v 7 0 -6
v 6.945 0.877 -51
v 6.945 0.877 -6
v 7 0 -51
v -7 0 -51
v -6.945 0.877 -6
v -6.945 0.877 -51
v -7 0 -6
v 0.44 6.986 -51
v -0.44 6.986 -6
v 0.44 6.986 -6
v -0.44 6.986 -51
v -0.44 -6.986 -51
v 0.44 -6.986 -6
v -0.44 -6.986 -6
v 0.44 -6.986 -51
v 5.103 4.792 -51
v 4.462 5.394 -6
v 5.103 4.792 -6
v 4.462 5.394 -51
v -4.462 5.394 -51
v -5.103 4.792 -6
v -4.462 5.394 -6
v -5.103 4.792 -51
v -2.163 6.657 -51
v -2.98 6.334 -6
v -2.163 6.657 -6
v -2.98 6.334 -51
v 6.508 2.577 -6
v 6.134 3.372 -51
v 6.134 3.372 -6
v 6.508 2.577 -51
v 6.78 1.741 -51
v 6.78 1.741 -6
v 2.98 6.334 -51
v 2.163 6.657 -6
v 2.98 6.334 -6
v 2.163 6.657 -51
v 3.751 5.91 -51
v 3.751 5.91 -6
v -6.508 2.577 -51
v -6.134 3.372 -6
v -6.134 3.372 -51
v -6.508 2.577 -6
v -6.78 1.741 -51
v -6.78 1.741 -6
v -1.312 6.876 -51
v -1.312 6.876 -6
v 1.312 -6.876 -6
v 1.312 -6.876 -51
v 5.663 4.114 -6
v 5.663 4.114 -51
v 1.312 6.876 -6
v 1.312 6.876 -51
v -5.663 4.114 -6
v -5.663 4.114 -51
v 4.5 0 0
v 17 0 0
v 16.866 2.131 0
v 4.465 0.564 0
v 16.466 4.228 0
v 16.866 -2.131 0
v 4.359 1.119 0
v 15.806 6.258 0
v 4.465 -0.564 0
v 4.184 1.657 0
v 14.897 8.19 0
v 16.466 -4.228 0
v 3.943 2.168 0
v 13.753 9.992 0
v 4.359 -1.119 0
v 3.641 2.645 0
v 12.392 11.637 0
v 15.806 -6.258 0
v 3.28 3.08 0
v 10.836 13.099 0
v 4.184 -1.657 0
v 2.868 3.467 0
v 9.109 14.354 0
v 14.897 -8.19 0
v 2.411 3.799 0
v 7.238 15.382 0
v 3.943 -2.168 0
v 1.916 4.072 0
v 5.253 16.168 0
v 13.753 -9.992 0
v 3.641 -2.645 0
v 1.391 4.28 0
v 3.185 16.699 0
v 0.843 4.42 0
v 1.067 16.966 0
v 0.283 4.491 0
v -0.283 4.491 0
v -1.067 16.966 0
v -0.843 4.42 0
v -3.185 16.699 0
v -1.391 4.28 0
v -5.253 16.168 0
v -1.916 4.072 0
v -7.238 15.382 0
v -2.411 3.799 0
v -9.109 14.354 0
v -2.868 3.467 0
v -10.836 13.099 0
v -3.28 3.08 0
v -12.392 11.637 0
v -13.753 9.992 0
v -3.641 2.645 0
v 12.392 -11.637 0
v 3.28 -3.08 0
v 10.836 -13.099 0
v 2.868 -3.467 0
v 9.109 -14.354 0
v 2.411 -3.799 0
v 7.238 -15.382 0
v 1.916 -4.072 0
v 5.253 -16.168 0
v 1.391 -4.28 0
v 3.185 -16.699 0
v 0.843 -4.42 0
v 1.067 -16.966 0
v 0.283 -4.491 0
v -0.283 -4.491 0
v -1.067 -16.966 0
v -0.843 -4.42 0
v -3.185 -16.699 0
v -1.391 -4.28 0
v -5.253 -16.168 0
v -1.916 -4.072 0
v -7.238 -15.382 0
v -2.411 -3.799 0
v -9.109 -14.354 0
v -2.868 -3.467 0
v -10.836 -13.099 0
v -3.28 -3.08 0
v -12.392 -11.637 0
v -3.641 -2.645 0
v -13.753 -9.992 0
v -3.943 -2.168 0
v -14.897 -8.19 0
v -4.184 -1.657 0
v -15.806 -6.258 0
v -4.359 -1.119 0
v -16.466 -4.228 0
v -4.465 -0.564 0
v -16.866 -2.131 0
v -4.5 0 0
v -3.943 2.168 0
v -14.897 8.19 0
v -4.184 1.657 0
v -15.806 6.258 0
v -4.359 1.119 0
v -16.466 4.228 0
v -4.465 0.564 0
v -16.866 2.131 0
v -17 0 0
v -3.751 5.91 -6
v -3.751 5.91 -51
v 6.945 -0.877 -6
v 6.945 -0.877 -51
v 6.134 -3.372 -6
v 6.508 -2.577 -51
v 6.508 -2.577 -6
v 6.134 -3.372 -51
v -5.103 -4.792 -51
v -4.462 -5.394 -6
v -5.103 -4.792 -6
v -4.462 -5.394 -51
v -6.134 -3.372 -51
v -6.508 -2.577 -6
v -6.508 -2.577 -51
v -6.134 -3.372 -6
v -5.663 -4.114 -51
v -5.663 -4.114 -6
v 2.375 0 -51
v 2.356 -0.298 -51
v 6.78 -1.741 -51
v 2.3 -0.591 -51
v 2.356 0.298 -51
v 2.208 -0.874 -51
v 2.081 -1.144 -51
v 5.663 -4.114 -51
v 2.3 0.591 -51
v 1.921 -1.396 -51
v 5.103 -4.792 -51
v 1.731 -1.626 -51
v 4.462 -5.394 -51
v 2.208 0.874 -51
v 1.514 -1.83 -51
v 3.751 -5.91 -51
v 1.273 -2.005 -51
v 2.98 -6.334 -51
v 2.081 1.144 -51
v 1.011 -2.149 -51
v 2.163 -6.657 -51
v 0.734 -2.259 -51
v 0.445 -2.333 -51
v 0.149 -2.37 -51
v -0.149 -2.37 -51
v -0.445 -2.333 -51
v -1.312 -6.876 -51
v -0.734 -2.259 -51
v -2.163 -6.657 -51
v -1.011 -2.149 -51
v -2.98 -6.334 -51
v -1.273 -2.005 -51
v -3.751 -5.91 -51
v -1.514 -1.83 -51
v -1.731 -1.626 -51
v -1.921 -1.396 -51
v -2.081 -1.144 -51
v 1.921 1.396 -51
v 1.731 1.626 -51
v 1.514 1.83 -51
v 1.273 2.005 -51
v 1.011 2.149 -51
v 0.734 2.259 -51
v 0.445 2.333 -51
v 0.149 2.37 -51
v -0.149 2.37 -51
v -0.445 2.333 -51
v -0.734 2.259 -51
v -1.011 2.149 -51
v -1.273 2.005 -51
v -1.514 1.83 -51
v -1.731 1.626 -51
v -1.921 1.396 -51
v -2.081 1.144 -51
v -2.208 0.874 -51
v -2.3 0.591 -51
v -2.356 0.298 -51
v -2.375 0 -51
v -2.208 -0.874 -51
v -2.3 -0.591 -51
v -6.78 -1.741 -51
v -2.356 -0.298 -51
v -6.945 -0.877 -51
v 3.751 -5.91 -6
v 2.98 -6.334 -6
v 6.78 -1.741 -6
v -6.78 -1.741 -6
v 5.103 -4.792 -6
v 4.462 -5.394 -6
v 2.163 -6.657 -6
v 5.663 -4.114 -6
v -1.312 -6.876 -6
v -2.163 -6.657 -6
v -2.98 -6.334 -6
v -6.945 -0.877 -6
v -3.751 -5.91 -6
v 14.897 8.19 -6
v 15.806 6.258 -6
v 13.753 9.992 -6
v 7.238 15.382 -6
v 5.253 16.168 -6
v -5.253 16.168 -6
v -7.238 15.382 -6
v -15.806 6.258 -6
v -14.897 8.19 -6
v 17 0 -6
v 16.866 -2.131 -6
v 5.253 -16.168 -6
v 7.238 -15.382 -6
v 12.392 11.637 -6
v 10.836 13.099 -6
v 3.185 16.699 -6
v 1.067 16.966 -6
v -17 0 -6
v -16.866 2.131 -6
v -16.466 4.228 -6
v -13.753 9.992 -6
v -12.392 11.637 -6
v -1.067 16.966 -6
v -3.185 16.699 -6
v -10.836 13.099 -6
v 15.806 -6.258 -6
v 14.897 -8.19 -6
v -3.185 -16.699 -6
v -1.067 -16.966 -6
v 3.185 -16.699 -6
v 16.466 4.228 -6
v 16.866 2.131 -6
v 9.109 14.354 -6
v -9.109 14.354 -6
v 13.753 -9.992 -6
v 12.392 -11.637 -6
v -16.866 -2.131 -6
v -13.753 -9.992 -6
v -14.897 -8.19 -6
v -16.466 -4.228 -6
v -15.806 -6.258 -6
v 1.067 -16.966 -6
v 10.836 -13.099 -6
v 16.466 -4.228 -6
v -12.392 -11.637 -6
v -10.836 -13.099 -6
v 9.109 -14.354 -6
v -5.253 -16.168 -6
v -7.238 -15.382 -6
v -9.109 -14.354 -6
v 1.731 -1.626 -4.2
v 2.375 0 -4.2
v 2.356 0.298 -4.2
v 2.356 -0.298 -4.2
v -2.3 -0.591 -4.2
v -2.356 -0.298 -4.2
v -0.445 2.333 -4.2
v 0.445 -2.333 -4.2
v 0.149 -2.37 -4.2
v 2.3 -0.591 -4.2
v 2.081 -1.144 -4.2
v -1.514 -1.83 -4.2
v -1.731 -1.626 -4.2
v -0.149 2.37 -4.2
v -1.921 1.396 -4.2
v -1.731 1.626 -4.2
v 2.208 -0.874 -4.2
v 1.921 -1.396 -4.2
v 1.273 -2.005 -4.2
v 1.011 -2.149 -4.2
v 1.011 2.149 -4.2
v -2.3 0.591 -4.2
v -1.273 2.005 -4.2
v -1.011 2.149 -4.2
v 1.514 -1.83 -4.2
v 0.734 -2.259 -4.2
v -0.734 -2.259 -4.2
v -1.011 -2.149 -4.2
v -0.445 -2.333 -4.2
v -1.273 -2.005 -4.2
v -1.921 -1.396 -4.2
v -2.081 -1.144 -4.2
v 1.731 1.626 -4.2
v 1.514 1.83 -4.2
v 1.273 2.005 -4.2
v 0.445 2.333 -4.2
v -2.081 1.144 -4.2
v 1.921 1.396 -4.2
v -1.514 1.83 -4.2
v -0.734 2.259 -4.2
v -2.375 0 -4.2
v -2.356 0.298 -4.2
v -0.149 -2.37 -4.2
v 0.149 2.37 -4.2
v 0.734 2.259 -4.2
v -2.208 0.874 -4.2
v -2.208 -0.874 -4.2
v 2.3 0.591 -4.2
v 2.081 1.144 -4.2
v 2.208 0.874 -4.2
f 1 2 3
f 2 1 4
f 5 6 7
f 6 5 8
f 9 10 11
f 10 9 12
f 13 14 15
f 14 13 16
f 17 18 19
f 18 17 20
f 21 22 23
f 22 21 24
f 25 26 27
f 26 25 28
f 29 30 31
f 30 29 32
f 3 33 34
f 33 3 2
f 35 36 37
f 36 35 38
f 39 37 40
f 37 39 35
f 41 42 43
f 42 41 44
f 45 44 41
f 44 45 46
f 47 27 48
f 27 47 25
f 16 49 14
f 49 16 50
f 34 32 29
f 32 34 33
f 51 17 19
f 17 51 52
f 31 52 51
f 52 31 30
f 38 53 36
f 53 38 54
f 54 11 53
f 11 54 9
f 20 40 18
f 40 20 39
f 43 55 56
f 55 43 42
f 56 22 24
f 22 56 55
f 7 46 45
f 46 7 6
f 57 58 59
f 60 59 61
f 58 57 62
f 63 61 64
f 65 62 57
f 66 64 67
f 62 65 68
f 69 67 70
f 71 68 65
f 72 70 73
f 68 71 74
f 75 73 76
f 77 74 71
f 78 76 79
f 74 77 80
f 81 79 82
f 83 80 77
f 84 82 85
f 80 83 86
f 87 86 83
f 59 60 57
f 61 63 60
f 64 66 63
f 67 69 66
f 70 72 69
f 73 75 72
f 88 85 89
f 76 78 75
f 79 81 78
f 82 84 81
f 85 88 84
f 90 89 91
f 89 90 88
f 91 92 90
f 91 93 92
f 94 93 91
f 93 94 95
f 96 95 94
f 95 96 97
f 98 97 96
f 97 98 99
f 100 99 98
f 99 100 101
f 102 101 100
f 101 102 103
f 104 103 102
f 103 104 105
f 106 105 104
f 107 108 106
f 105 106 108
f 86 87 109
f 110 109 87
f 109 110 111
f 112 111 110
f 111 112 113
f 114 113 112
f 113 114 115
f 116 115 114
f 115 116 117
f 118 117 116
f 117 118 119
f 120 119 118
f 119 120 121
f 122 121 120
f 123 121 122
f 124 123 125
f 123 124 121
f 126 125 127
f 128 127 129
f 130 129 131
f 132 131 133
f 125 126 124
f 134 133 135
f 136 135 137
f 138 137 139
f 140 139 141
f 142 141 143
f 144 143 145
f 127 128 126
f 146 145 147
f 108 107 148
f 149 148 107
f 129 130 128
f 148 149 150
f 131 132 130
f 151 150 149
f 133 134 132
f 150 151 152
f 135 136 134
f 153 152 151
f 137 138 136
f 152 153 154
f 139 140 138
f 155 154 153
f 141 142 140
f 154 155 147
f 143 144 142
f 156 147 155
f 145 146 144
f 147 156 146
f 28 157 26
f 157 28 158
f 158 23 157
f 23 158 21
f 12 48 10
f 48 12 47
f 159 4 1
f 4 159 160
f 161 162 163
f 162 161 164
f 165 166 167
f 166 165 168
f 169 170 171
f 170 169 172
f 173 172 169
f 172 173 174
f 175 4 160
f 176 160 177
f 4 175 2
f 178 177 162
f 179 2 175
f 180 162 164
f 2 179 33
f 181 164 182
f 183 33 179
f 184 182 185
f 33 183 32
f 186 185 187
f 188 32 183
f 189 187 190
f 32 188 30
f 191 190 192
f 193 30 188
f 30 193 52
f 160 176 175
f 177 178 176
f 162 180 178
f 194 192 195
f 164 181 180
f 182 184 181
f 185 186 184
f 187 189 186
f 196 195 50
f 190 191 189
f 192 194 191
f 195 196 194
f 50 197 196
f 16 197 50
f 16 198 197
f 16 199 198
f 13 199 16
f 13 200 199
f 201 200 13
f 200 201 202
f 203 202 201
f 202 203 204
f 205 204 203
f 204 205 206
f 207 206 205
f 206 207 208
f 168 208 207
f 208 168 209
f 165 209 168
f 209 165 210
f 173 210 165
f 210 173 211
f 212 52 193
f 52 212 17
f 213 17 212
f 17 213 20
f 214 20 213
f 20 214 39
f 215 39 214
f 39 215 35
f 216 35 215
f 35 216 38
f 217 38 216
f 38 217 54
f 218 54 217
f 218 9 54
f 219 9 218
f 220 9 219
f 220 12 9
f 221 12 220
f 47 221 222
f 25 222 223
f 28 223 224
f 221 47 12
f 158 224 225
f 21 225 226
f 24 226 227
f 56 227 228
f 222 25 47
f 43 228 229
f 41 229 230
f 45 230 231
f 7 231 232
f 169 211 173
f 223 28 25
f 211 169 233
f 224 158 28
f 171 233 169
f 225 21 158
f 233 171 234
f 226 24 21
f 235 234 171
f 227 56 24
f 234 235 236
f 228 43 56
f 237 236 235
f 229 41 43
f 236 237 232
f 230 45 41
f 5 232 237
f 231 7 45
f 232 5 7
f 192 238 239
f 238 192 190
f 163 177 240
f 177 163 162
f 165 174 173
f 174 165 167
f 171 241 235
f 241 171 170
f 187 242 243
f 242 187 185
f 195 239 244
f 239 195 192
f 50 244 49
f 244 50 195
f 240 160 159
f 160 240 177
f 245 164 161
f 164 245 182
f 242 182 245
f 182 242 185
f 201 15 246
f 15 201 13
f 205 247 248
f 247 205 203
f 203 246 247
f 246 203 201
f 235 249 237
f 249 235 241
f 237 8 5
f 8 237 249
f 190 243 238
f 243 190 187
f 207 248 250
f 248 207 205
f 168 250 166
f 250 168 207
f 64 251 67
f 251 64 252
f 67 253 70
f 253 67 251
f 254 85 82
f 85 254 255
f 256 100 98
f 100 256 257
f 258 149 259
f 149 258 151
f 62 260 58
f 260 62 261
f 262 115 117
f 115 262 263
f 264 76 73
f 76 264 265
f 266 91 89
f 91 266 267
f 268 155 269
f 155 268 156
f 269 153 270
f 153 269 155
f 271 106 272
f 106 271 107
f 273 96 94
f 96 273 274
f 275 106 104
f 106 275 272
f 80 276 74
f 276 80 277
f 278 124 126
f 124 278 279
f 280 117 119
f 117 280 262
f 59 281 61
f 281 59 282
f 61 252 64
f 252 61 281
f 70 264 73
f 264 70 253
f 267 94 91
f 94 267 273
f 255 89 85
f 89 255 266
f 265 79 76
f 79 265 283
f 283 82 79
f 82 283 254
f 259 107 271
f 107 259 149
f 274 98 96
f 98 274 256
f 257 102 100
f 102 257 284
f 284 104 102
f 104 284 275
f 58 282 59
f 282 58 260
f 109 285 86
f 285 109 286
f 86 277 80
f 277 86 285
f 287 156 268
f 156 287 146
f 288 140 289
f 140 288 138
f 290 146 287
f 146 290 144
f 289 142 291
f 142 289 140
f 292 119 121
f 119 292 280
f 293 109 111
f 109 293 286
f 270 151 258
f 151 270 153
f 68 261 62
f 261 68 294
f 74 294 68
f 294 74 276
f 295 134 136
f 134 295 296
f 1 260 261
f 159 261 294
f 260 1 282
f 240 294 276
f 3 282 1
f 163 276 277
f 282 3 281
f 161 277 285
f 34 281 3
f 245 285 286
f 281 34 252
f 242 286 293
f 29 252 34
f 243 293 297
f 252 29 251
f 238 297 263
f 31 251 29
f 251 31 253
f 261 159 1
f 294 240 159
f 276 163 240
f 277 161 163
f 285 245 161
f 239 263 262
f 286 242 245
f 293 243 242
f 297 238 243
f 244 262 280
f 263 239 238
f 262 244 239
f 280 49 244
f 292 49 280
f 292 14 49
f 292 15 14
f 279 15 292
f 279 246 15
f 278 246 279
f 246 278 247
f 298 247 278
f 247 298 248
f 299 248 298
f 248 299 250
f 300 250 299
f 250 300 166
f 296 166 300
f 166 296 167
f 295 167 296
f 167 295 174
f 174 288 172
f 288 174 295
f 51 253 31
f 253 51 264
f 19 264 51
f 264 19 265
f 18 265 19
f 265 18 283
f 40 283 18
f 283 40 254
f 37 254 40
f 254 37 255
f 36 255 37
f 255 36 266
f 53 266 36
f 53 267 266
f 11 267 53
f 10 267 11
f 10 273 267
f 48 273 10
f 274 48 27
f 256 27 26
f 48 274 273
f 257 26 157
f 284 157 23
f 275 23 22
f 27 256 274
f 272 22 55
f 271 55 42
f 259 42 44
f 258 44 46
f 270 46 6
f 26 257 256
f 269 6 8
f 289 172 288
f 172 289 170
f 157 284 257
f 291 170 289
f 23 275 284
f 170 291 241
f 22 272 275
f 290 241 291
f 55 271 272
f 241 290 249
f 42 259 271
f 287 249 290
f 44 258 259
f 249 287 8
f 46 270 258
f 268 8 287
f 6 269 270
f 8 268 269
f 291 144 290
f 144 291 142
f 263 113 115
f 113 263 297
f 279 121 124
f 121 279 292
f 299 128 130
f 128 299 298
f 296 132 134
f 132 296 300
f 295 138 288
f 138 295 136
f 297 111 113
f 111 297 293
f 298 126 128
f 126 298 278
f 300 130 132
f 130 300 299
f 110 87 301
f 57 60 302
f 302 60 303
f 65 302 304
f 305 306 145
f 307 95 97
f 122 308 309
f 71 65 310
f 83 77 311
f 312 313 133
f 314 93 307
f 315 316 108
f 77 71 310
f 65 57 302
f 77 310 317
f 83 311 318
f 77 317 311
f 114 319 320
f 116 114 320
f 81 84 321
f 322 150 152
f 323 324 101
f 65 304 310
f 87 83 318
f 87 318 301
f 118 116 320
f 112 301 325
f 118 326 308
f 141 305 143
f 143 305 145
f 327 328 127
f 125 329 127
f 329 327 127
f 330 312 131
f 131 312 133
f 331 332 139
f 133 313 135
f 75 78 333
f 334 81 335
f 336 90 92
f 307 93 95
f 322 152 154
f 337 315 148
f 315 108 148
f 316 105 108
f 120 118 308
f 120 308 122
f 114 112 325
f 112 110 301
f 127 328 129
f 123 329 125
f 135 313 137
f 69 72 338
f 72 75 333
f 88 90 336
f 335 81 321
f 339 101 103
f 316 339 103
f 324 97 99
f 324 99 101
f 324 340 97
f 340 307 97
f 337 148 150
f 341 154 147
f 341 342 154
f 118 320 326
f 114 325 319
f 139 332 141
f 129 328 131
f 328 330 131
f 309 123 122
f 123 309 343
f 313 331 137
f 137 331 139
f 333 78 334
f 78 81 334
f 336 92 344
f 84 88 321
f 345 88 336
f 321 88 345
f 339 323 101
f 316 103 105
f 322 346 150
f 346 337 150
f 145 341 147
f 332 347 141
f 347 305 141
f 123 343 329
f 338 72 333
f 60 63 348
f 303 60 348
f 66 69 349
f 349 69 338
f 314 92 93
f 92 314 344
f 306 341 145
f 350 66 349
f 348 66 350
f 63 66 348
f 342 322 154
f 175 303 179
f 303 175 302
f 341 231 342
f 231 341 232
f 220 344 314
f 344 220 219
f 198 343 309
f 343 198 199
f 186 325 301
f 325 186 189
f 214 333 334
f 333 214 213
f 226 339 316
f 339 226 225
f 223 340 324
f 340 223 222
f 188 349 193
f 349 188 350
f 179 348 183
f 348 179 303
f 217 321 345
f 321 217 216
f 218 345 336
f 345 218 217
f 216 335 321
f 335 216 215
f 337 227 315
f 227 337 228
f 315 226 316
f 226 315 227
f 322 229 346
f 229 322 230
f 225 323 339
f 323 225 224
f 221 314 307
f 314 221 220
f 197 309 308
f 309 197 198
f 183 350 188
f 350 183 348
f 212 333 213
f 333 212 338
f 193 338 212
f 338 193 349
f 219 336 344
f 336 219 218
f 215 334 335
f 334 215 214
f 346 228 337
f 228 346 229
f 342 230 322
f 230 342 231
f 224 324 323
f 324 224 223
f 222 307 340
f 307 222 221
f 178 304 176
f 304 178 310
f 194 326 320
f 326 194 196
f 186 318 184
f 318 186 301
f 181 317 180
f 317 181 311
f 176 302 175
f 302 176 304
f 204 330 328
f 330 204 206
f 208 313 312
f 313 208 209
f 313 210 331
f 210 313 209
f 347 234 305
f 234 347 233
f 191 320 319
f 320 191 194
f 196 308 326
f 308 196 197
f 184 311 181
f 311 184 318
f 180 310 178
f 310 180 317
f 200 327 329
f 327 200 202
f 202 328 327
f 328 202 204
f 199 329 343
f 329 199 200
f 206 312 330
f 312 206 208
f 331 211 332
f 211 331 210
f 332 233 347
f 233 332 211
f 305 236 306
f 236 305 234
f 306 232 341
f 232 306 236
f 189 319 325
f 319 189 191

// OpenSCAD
$fn = 50;


difference() {
	union() {
		translate(v = [0, 0, -51.0000000000]) {
			cylinder(h = 51, r = 7.0000000000);
		}
		translate(v = [0, 0, -6.0000000000]) {
			cylinder(h = 6, r = 17.0000000000);
		}
	}
	union() {
		translate(v = [0, 0, 0]) {
			rotate(a = [0, 0, 0]) {
				difference() {
					union() {
						#translate(v = [0, 0, -51.0000000000]) {
							cylinder(h = 51, r = 2.2500000000);
						}
						#translate(v = [0, 0, -4.2000000000]) {
							cylinder(h = 4.2000000000, r1 = 2.3750000000, r2 = 4.5000000000);
						}
						#translate(v = [0, 0, -51.0000000000]) {
							cylinder(h = 51, r = 2.3750000000);
						}
						#translate(v = [0, 0, -51.0000000000]) {
							cylinder(h = 51, r = 2.2500000000);
						}
					}
					union();
				}
			}
		}
	}
}
